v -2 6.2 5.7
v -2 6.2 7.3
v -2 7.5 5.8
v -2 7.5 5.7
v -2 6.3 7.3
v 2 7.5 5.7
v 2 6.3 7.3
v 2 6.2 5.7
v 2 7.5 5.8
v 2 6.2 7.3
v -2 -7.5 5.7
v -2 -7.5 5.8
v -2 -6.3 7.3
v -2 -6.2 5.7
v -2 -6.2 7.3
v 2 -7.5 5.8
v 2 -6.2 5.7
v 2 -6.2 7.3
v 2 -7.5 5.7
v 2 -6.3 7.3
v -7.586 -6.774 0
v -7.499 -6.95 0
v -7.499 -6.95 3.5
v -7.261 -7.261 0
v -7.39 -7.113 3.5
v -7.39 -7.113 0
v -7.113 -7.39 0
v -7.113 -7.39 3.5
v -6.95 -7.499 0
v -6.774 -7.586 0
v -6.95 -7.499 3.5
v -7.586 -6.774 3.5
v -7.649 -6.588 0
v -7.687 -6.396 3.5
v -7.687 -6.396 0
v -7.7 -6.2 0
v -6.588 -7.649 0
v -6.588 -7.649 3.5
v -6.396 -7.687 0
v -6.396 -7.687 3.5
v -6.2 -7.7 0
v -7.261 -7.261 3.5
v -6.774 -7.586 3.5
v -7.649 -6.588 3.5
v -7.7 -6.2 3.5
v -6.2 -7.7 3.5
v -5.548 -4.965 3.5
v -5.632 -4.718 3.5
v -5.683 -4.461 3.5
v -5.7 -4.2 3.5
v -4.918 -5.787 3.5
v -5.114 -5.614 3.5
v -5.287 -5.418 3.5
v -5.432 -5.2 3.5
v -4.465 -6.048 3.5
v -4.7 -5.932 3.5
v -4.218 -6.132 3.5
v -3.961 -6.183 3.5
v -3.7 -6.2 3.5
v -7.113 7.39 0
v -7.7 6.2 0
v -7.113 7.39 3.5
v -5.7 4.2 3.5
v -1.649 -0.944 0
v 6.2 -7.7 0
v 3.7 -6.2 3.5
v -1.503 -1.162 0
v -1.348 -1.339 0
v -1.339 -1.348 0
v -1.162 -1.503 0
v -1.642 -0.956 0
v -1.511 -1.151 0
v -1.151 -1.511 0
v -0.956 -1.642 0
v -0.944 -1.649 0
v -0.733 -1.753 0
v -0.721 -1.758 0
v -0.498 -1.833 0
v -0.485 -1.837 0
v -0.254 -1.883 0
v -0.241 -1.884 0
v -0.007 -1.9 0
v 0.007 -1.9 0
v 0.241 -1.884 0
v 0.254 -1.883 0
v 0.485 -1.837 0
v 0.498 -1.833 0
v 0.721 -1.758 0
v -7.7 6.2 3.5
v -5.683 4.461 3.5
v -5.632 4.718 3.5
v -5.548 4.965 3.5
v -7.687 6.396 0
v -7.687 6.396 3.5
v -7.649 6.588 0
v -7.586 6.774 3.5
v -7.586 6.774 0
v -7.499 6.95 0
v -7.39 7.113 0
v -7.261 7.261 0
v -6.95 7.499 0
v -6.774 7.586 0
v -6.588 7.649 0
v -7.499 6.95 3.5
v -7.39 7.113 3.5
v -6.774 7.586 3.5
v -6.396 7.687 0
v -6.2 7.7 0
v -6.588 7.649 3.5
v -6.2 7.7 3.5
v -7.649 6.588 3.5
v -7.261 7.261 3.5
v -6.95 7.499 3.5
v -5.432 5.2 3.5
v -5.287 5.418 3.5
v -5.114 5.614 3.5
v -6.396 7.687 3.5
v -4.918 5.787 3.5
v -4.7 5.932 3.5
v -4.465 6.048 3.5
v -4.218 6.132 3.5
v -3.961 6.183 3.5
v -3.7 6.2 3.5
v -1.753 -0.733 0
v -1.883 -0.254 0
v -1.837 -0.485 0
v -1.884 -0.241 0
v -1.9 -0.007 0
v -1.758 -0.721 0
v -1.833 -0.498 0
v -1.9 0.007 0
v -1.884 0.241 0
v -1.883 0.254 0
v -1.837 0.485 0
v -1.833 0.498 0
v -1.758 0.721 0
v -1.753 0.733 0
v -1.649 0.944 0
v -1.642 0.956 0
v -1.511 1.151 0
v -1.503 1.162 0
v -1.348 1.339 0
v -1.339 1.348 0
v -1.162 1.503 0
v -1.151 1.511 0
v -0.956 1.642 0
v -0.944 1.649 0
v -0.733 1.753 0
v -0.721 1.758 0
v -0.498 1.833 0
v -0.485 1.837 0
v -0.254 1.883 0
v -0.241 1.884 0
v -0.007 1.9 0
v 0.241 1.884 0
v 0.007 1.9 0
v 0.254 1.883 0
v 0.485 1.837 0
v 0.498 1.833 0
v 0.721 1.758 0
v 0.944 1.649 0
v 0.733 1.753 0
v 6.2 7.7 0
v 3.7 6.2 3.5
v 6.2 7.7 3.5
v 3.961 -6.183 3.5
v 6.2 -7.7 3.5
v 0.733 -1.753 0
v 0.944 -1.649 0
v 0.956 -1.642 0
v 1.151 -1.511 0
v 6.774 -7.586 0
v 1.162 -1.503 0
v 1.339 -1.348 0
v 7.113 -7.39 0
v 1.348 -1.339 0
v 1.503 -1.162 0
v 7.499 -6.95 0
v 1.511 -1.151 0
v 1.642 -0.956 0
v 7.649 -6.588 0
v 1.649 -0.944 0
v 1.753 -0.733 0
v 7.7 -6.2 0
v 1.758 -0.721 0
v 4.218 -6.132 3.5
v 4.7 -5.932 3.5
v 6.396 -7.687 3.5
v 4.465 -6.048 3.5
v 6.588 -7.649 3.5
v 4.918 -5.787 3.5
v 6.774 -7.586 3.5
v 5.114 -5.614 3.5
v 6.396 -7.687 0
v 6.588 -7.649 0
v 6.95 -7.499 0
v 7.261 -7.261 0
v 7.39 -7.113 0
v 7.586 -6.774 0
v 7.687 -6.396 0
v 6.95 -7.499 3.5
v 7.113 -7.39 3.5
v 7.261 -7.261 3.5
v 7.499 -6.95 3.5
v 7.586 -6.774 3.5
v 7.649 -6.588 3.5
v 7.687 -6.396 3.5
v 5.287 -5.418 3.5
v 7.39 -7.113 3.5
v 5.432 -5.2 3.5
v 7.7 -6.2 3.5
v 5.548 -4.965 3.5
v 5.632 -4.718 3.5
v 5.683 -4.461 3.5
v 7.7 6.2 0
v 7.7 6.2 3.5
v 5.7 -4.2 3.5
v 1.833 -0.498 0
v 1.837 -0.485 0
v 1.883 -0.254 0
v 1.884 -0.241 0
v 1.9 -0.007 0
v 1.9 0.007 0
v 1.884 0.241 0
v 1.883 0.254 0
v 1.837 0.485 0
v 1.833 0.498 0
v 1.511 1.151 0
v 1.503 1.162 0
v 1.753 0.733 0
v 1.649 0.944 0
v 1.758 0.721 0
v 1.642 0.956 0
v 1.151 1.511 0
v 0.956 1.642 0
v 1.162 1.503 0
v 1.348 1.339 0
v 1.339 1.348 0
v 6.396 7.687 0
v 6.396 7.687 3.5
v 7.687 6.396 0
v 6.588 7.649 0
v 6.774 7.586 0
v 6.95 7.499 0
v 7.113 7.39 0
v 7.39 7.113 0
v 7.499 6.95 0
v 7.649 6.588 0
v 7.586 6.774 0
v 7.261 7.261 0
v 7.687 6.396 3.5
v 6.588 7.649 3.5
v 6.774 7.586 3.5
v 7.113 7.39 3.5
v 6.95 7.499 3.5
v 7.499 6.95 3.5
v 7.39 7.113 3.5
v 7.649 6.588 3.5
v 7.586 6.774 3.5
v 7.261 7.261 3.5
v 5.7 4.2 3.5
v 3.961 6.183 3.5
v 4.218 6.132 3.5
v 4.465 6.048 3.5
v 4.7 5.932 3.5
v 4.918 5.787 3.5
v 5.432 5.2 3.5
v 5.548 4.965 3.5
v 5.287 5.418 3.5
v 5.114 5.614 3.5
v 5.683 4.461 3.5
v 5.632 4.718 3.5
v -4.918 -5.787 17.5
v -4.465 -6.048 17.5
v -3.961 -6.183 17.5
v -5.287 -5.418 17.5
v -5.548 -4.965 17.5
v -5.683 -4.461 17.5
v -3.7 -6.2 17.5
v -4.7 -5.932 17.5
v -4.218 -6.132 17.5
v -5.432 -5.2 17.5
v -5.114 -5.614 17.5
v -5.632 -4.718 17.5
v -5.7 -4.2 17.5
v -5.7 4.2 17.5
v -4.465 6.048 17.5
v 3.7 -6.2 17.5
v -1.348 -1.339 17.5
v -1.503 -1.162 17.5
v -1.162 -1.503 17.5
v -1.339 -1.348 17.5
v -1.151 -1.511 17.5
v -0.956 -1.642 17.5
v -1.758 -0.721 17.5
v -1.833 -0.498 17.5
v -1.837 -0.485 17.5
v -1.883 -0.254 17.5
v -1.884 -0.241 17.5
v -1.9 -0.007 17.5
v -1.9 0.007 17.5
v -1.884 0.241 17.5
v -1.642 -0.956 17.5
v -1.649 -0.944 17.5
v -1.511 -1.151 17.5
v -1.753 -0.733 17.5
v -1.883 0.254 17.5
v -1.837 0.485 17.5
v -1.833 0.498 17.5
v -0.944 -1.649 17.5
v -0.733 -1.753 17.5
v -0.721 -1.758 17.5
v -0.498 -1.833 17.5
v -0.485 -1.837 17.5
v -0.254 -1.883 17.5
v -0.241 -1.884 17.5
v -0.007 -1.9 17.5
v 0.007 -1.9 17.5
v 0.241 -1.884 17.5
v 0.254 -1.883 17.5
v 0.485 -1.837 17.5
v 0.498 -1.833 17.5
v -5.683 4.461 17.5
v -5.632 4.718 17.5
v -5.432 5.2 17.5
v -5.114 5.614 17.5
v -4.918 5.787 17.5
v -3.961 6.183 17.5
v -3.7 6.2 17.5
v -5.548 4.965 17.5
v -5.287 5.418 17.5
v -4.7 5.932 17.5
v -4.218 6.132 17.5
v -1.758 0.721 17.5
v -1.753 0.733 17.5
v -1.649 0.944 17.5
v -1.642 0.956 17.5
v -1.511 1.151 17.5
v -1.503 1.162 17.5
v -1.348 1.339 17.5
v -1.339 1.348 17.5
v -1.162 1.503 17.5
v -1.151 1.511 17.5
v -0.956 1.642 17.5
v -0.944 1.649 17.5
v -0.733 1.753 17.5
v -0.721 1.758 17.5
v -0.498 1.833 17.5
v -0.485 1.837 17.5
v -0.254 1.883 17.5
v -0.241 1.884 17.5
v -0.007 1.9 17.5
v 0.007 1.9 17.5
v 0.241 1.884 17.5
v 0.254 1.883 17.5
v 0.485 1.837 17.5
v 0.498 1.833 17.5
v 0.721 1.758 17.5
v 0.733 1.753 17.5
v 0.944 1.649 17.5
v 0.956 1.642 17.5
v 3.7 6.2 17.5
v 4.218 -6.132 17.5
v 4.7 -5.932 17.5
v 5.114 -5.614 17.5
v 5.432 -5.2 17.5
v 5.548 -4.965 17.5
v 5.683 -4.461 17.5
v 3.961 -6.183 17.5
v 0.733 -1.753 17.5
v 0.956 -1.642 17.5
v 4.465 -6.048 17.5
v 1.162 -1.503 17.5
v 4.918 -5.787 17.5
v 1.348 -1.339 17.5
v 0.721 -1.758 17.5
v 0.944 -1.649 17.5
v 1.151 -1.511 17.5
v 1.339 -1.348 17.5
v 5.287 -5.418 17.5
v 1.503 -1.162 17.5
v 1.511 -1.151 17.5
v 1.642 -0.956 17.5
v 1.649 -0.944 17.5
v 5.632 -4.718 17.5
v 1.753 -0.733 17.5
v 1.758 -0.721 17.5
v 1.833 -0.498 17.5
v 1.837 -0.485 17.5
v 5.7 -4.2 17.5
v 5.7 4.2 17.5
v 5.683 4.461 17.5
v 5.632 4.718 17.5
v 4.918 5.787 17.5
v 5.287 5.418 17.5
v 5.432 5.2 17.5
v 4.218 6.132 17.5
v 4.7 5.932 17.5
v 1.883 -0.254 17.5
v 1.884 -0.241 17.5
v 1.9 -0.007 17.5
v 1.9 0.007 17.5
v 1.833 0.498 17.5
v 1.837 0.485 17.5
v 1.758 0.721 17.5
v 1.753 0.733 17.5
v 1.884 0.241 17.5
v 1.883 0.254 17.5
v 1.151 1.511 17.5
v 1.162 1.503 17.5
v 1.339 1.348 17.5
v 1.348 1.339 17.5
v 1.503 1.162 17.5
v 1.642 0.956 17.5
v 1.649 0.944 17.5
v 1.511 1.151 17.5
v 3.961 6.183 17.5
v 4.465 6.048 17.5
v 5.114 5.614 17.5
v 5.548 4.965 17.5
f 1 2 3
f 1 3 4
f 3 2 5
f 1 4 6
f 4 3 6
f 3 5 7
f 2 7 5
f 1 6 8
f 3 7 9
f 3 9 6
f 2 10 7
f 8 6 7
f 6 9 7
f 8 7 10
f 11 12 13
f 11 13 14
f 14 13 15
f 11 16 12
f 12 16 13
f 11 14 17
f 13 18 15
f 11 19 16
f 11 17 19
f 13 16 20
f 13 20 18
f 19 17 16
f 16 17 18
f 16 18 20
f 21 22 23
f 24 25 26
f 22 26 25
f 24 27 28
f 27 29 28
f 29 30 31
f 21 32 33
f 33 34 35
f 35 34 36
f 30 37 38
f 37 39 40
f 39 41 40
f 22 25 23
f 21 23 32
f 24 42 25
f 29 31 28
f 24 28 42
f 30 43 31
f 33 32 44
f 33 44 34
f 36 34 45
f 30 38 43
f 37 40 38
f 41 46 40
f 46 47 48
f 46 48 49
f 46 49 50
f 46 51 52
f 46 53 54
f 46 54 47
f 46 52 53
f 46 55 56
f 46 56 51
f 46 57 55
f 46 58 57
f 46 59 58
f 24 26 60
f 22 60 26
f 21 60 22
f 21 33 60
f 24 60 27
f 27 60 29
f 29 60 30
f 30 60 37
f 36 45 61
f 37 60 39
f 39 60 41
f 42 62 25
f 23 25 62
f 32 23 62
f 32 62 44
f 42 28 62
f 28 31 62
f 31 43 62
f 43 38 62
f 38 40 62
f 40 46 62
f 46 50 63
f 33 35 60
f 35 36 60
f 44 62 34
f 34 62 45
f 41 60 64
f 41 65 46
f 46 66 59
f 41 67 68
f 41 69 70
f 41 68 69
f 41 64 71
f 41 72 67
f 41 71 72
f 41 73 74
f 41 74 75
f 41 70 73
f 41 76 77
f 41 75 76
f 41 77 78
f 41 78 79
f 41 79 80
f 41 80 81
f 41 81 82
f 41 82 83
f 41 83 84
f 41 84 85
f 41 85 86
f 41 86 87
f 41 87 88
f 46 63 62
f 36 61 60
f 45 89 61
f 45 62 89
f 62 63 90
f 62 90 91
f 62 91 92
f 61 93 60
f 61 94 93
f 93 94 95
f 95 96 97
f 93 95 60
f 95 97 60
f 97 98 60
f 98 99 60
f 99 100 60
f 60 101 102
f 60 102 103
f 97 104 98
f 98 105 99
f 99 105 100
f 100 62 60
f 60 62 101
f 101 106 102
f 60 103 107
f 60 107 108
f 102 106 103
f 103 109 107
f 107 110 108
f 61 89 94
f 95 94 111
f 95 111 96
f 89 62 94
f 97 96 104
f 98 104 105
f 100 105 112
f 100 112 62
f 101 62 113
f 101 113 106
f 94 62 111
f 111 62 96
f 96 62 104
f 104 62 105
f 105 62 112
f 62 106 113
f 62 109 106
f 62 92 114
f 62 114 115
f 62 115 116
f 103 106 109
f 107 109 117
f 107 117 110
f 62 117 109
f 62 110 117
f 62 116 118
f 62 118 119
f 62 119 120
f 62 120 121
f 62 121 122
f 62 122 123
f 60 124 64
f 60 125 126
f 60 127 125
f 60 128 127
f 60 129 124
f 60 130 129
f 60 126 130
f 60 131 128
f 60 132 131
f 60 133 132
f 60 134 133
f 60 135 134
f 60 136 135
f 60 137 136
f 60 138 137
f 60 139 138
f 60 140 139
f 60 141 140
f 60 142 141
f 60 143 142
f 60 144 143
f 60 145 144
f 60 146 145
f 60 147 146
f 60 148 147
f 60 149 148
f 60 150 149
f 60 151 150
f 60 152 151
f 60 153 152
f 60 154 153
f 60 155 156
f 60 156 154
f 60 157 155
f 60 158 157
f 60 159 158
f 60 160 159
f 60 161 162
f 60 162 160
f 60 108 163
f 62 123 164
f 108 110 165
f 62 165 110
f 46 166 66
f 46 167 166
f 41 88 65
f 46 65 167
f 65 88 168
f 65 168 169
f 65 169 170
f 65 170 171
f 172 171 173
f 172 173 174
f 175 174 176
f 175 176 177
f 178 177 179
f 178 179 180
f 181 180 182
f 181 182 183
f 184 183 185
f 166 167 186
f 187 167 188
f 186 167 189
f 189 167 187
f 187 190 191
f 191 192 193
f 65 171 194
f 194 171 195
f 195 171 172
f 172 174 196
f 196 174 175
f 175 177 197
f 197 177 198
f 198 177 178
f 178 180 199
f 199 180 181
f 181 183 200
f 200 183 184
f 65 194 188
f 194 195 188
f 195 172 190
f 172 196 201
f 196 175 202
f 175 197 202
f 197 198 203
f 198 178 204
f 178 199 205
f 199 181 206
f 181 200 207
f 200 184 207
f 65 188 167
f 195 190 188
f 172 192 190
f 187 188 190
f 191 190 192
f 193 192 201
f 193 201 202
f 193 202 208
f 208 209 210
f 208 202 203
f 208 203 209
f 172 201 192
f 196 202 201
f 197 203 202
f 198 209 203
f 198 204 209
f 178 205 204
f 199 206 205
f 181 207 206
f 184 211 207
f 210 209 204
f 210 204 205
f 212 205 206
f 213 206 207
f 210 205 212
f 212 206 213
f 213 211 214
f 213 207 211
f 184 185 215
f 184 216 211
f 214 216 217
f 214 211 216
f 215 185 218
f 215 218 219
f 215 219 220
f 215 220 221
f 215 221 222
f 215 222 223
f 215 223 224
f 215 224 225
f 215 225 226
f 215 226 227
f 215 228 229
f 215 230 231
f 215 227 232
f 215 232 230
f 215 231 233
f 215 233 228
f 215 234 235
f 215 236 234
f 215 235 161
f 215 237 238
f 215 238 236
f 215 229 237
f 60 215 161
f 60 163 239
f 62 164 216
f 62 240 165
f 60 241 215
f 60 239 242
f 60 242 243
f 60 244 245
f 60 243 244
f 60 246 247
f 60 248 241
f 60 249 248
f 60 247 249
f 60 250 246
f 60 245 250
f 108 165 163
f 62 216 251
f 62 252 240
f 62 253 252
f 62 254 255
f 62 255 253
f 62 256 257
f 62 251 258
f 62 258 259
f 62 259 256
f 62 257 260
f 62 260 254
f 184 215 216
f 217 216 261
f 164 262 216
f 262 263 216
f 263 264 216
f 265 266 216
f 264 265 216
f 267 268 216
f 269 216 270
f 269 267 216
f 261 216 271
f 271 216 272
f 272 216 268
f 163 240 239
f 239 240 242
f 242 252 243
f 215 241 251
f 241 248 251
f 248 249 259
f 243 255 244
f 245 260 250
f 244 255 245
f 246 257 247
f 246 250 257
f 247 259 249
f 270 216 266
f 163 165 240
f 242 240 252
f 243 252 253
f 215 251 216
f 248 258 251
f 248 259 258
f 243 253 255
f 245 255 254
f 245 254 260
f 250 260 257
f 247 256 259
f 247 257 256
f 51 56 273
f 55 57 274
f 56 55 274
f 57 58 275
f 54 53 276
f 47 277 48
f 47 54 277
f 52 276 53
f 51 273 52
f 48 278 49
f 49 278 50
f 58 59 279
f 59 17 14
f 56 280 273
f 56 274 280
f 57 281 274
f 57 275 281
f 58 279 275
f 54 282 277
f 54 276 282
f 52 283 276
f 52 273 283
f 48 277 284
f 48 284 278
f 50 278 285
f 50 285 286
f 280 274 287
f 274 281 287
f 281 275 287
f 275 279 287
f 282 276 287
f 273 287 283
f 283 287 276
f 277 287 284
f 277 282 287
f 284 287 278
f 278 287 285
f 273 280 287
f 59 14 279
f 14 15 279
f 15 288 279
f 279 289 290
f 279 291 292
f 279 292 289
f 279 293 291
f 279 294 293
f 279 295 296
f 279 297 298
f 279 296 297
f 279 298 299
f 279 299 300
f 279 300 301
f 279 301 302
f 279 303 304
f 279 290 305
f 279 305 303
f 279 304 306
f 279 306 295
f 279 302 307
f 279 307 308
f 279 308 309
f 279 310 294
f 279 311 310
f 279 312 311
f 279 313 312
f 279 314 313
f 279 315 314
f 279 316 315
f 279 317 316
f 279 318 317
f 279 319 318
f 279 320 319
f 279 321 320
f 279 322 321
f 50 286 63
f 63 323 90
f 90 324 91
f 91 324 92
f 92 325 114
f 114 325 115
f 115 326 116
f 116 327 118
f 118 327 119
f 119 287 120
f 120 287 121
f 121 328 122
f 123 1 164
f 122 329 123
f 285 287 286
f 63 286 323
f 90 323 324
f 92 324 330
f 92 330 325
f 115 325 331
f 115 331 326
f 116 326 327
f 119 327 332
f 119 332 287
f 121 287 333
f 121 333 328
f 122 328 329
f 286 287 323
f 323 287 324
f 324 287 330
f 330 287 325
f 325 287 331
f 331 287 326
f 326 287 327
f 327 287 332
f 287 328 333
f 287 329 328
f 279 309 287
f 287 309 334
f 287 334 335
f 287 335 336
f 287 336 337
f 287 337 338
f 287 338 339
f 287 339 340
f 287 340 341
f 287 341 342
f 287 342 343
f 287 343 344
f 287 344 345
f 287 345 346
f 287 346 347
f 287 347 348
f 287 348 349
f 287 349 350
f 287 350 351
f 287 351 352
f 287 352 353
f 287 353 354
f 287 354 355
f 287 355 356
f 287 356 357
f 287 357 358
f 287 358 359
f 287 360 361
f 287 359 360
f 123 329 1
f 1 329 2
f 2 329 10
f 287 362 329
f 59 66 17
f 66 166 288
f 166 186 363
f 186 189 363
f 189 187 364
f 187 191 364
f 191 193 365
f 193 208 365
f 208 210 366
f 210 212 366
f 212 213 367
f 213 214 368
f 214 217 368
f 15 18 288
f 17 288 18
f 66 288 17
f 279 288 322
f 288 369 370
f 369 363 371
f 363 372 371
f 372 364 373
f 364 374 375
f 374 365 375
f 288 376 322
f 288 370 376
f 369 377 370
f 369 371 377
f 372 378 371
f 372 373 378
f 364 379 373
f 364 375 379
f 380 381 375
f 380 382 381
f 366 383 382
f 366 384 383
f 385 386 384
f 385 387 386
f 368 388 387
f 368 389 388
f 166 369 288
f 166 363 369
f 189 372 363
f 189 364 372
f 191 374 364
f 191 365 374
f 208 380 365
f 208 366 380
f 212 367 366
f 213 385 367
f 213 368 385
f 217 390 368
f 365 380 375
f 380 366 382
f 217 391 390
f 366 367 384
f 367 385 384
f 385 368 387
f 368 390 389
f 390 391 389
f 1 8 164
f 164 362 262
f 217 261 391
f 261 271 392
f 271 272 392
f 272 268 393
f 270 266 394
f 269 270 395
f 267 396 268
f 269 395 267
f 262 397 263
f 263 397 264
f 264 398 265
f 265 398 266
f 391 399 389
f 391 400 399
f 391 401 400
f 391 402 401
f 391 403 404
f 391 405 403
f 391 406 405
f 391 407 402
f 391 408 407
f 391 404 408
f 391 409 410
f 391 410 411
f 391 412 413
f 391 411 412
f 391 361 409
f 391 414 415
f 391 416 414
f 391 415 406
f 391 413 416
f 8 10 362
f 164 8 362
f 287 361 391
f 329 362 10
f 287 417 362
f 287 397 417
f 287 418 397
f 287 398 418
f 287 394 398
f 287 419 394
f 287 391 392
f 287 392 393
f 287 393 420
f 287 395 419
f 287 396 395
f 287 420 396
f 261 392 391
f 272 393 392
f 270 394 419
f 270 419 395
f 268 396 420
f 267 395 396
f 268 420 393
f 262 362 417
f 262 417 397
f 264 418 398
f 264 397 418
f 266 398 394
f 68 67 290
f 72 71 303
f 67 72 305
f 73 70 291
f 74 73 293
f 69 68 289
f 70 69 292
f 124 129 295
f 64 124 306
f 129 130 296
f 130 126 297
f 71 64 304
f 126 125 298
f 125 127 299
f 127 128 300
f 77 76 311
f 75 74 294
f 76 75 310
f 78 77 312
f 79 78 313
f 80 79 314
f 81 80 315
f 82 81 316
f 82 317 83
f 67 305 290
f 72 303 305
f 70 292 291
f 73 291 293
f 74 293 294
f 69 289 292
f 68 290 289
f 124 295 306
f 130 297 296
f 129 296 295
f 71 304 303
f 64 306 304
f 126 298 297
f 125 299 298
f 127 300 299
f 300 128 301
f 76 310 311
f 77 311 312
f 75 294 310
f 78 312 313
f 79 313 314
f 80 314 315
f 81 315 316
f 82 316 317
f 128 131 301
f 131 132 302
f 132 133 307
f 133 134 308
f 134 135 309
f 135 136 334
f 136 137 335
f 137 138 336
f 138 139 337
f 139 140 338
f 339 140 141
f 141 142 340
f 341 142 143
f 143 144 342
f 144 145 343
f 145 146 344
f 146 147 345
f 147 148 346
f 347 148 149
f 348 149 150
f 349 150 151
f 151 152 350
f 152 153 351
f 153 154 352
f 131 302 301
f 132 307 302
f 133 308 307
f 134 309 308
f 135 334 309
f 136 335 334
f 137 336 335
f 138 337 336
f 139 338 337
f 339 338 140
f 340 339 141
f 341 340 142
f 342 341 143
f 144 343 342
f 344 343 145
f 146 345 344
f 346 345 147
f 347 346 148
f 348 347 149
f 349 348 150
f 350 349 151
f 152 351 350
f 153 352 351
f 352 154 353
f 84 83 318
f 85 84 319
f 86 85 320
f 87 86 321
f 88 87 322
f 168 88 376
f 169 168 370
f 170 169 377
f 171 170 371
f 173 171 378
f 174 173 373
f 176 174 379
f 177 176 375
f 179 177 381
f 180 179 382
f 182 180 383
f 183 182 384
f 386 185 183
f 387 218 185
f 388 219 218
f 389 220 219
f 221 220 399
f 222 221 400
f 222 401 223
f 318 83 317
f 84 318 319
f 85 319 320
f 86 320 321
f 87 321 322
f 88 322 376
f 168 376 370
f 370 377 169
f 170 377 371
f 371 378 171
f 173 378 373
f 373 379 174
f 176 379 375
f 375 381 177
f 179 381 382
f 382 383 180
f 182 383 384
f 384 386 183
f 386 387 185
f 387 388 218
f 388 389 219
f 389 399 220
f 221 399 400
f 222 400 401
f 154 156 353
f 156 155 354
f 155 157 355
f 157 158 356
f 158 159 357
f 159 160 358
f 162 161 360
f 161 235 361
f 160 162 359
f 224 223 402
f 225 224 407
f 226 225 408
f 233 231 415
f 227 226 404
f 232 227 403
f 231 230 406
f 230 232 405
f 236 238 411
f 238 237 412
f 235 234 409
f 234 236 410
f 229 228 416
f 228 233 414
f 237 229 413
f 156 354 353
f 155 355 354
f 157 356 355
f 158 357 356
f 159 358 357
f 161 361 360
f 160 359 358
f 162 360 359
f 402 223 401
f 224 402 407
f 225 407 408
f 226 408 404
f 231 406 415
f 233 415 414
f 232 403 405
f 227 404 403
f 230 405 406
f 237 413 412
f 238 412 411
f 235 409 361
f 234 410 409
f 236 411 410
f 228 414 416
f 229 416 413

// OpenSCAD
// file: parameters.scad
// ============================================
// MODULAR CABLE ORGANIZER - SHARED PARAMETERS
// ============================================
// All dimensions in mm - include this in all files
// ============================================

$fn = 48;

// === TOLERANCES ===
clearance = 0.3;
port_clearance = 0.1;  // Extra clearance for port openings (reduced - 0.2 was too loose for USB-C)
wall = 1.6;

// === SLOT DIMENSIONS (2:1 aspect ratio) - scaled to 2/3 ===
slot_width = 32;  // Standard wide slot for larger connectors
slot_width_narrow = 16;  // Narrow slot for compact connectors (USB-C, micro-USB, USB-A, Lightning, 3.5mm)
slot_height = 16;  // Height is same for both wide and narrow
slot_depth = 4;  // Reduced from 6mm - less frame depth needed

// === FRAME STRUCTURE ===
frame_wall = 2.0;   // Wall between slots - 6 layers @ 0.4mm nozzle for strength
frame_border = 6;  // Increased by 10mm for mounting holes with countersink
frame_back = 2;     // Slightly thicker for snap catch strength
mount_hole_dia = 3;
countersink_dia = 6;  // Diameter of countersink for screw heads
countersink_depth = 2;  // Depth of countersink

// === DEFAULT GRID (can be overridden in individual files) ===
grid_cols = 2;
grid_rows = 2;

// === INSERT BASE DIMENSIONS ===
insert_width = slot_width - (2 * clearance);
insert_height = slot_height - (2 * clearance);
insert_base_depth = slot_depth - 0.5;

// === NARROW INSERT BASE DIMENSIONS ===
insert_width_narrow = slot_width_narrow - (2 * clearance);
insert_height_narrow = slot_height - (2 * clearance);

// === INSERT BODY (protrudes from frame) ===
insert_body_width = insert_width - 4;
insert_body_height = insert_height - 3;
insert_body_depth = 12;  // Deep enough to accommodate male cable connectors
insert_top_thick = 1.5;  // Top platform thickness

// === NARROW INSERT BODY (protrudes from frame) ===
insert_body_width_narrow = insert_width_narrow - 4;
insert_body_height_narrow = insert_height_narrow - 3;

// === SNAP TABS (on neck/body - catch on back plate) ===
snap_tab_width = 4;
snap_tab_protrude = 1.2;  // How far tab sticks out from body
snap_tab_thick = 1.5;     // Z thickness of tab
snap_tab_offset = 2.2;      // Distance from base to tab bottom on insert (increased to clear frame)

// === CONNECTOR PORT DIMENSIONS & BODY DEPTHS ===
// Port dimensions from reference blueprints
// Body depths sized to match typical male connector lengths

// USB-C: 8.4 x 2.6mm, male connector ~9mm
usbc_w = 8.4;
usbc_h = 2.6;
usbc_r = 1.0;
usbc_body_depth = 9;

// USB-A: 12.0 x 4.5mm (tighter fit based on test print)
usba_w = 12.0;
usba_h = 4.5;
usba_r = 0.5;
usba_body_depth = 13;

// USB Mini: 6.9 x 3.0mm, male connector ~9mm
usb_mini_w = 6.9;
usb_mini_h = 3.0;
usb_mini_r = 0.5;
usb_mini_body_depth = 9;

// USB Micro-B: 7.0 x 1.8mm (tighter fit based on test print)
usb_micro_w = 7.0;
usb_micro_h = 1.8;
usb_micro_r = 0.3;
usb_micro_body_depth = 7;

// USB-B: 8.4 x 7.6mm (printer/keyboard style connector)
usb_b_w = 8.4;
usb_b_h = 7.6;
usb_b_r = 0.8;
usb_b_body_depth = 14;

// Lightning: 7.6 x 1.5mm, male connector ~8mm (measured from actual connector)
lightning_w = 7.6;
lightning_h = 1.5;
lightning_r = 0.5;
lightning_body_depth = 8;

// HDMI: 13.9 x 4.45mm (adjusted taper for better fit)
hdmi_w = 13.9;
hdmi_h = 4.45;
hdmi_r = 0.5;
hdmi_body_depth = 16;

// 3.5mm Audio Jack: male plug ~14mm (3.5mm = ~3.5mm, but use 3.6mm for snug fit)
audio_jack_dia = 3.6;
audio_jack_body_depth = 14;

// Blank/Label: recessed area for label
label_w = 30;
label_h = 12;
label_depth = 0.8;

// === CALCULATED VALUES ===
frame_total_depth = frame_back + slot_depth;
grid_width = (grid_cols * slot_width) + ((grid_cols - 1) * frame_wall);
grid_height = (grid_rows * slot_height) + ((grid_rows - 1) * frame_wall);
frame_width = grid_width + (2 * frame_border);
frame_height_total = grid_height + (2 * frame_border);
insert_total_depth = insert_base_depth + insert_body_depth;
// main file
// ============================================
// PRINT FILE: 3.5mm Audio Jack Insert (NARROW)
// ============================================
// Narrow width version for space-efficient frames
// Print with base down (no supports needed)
// ============================================

include <insert_base.scad>

// Render narrow Audio Jack insert
insert_audio_jack_narrow();
